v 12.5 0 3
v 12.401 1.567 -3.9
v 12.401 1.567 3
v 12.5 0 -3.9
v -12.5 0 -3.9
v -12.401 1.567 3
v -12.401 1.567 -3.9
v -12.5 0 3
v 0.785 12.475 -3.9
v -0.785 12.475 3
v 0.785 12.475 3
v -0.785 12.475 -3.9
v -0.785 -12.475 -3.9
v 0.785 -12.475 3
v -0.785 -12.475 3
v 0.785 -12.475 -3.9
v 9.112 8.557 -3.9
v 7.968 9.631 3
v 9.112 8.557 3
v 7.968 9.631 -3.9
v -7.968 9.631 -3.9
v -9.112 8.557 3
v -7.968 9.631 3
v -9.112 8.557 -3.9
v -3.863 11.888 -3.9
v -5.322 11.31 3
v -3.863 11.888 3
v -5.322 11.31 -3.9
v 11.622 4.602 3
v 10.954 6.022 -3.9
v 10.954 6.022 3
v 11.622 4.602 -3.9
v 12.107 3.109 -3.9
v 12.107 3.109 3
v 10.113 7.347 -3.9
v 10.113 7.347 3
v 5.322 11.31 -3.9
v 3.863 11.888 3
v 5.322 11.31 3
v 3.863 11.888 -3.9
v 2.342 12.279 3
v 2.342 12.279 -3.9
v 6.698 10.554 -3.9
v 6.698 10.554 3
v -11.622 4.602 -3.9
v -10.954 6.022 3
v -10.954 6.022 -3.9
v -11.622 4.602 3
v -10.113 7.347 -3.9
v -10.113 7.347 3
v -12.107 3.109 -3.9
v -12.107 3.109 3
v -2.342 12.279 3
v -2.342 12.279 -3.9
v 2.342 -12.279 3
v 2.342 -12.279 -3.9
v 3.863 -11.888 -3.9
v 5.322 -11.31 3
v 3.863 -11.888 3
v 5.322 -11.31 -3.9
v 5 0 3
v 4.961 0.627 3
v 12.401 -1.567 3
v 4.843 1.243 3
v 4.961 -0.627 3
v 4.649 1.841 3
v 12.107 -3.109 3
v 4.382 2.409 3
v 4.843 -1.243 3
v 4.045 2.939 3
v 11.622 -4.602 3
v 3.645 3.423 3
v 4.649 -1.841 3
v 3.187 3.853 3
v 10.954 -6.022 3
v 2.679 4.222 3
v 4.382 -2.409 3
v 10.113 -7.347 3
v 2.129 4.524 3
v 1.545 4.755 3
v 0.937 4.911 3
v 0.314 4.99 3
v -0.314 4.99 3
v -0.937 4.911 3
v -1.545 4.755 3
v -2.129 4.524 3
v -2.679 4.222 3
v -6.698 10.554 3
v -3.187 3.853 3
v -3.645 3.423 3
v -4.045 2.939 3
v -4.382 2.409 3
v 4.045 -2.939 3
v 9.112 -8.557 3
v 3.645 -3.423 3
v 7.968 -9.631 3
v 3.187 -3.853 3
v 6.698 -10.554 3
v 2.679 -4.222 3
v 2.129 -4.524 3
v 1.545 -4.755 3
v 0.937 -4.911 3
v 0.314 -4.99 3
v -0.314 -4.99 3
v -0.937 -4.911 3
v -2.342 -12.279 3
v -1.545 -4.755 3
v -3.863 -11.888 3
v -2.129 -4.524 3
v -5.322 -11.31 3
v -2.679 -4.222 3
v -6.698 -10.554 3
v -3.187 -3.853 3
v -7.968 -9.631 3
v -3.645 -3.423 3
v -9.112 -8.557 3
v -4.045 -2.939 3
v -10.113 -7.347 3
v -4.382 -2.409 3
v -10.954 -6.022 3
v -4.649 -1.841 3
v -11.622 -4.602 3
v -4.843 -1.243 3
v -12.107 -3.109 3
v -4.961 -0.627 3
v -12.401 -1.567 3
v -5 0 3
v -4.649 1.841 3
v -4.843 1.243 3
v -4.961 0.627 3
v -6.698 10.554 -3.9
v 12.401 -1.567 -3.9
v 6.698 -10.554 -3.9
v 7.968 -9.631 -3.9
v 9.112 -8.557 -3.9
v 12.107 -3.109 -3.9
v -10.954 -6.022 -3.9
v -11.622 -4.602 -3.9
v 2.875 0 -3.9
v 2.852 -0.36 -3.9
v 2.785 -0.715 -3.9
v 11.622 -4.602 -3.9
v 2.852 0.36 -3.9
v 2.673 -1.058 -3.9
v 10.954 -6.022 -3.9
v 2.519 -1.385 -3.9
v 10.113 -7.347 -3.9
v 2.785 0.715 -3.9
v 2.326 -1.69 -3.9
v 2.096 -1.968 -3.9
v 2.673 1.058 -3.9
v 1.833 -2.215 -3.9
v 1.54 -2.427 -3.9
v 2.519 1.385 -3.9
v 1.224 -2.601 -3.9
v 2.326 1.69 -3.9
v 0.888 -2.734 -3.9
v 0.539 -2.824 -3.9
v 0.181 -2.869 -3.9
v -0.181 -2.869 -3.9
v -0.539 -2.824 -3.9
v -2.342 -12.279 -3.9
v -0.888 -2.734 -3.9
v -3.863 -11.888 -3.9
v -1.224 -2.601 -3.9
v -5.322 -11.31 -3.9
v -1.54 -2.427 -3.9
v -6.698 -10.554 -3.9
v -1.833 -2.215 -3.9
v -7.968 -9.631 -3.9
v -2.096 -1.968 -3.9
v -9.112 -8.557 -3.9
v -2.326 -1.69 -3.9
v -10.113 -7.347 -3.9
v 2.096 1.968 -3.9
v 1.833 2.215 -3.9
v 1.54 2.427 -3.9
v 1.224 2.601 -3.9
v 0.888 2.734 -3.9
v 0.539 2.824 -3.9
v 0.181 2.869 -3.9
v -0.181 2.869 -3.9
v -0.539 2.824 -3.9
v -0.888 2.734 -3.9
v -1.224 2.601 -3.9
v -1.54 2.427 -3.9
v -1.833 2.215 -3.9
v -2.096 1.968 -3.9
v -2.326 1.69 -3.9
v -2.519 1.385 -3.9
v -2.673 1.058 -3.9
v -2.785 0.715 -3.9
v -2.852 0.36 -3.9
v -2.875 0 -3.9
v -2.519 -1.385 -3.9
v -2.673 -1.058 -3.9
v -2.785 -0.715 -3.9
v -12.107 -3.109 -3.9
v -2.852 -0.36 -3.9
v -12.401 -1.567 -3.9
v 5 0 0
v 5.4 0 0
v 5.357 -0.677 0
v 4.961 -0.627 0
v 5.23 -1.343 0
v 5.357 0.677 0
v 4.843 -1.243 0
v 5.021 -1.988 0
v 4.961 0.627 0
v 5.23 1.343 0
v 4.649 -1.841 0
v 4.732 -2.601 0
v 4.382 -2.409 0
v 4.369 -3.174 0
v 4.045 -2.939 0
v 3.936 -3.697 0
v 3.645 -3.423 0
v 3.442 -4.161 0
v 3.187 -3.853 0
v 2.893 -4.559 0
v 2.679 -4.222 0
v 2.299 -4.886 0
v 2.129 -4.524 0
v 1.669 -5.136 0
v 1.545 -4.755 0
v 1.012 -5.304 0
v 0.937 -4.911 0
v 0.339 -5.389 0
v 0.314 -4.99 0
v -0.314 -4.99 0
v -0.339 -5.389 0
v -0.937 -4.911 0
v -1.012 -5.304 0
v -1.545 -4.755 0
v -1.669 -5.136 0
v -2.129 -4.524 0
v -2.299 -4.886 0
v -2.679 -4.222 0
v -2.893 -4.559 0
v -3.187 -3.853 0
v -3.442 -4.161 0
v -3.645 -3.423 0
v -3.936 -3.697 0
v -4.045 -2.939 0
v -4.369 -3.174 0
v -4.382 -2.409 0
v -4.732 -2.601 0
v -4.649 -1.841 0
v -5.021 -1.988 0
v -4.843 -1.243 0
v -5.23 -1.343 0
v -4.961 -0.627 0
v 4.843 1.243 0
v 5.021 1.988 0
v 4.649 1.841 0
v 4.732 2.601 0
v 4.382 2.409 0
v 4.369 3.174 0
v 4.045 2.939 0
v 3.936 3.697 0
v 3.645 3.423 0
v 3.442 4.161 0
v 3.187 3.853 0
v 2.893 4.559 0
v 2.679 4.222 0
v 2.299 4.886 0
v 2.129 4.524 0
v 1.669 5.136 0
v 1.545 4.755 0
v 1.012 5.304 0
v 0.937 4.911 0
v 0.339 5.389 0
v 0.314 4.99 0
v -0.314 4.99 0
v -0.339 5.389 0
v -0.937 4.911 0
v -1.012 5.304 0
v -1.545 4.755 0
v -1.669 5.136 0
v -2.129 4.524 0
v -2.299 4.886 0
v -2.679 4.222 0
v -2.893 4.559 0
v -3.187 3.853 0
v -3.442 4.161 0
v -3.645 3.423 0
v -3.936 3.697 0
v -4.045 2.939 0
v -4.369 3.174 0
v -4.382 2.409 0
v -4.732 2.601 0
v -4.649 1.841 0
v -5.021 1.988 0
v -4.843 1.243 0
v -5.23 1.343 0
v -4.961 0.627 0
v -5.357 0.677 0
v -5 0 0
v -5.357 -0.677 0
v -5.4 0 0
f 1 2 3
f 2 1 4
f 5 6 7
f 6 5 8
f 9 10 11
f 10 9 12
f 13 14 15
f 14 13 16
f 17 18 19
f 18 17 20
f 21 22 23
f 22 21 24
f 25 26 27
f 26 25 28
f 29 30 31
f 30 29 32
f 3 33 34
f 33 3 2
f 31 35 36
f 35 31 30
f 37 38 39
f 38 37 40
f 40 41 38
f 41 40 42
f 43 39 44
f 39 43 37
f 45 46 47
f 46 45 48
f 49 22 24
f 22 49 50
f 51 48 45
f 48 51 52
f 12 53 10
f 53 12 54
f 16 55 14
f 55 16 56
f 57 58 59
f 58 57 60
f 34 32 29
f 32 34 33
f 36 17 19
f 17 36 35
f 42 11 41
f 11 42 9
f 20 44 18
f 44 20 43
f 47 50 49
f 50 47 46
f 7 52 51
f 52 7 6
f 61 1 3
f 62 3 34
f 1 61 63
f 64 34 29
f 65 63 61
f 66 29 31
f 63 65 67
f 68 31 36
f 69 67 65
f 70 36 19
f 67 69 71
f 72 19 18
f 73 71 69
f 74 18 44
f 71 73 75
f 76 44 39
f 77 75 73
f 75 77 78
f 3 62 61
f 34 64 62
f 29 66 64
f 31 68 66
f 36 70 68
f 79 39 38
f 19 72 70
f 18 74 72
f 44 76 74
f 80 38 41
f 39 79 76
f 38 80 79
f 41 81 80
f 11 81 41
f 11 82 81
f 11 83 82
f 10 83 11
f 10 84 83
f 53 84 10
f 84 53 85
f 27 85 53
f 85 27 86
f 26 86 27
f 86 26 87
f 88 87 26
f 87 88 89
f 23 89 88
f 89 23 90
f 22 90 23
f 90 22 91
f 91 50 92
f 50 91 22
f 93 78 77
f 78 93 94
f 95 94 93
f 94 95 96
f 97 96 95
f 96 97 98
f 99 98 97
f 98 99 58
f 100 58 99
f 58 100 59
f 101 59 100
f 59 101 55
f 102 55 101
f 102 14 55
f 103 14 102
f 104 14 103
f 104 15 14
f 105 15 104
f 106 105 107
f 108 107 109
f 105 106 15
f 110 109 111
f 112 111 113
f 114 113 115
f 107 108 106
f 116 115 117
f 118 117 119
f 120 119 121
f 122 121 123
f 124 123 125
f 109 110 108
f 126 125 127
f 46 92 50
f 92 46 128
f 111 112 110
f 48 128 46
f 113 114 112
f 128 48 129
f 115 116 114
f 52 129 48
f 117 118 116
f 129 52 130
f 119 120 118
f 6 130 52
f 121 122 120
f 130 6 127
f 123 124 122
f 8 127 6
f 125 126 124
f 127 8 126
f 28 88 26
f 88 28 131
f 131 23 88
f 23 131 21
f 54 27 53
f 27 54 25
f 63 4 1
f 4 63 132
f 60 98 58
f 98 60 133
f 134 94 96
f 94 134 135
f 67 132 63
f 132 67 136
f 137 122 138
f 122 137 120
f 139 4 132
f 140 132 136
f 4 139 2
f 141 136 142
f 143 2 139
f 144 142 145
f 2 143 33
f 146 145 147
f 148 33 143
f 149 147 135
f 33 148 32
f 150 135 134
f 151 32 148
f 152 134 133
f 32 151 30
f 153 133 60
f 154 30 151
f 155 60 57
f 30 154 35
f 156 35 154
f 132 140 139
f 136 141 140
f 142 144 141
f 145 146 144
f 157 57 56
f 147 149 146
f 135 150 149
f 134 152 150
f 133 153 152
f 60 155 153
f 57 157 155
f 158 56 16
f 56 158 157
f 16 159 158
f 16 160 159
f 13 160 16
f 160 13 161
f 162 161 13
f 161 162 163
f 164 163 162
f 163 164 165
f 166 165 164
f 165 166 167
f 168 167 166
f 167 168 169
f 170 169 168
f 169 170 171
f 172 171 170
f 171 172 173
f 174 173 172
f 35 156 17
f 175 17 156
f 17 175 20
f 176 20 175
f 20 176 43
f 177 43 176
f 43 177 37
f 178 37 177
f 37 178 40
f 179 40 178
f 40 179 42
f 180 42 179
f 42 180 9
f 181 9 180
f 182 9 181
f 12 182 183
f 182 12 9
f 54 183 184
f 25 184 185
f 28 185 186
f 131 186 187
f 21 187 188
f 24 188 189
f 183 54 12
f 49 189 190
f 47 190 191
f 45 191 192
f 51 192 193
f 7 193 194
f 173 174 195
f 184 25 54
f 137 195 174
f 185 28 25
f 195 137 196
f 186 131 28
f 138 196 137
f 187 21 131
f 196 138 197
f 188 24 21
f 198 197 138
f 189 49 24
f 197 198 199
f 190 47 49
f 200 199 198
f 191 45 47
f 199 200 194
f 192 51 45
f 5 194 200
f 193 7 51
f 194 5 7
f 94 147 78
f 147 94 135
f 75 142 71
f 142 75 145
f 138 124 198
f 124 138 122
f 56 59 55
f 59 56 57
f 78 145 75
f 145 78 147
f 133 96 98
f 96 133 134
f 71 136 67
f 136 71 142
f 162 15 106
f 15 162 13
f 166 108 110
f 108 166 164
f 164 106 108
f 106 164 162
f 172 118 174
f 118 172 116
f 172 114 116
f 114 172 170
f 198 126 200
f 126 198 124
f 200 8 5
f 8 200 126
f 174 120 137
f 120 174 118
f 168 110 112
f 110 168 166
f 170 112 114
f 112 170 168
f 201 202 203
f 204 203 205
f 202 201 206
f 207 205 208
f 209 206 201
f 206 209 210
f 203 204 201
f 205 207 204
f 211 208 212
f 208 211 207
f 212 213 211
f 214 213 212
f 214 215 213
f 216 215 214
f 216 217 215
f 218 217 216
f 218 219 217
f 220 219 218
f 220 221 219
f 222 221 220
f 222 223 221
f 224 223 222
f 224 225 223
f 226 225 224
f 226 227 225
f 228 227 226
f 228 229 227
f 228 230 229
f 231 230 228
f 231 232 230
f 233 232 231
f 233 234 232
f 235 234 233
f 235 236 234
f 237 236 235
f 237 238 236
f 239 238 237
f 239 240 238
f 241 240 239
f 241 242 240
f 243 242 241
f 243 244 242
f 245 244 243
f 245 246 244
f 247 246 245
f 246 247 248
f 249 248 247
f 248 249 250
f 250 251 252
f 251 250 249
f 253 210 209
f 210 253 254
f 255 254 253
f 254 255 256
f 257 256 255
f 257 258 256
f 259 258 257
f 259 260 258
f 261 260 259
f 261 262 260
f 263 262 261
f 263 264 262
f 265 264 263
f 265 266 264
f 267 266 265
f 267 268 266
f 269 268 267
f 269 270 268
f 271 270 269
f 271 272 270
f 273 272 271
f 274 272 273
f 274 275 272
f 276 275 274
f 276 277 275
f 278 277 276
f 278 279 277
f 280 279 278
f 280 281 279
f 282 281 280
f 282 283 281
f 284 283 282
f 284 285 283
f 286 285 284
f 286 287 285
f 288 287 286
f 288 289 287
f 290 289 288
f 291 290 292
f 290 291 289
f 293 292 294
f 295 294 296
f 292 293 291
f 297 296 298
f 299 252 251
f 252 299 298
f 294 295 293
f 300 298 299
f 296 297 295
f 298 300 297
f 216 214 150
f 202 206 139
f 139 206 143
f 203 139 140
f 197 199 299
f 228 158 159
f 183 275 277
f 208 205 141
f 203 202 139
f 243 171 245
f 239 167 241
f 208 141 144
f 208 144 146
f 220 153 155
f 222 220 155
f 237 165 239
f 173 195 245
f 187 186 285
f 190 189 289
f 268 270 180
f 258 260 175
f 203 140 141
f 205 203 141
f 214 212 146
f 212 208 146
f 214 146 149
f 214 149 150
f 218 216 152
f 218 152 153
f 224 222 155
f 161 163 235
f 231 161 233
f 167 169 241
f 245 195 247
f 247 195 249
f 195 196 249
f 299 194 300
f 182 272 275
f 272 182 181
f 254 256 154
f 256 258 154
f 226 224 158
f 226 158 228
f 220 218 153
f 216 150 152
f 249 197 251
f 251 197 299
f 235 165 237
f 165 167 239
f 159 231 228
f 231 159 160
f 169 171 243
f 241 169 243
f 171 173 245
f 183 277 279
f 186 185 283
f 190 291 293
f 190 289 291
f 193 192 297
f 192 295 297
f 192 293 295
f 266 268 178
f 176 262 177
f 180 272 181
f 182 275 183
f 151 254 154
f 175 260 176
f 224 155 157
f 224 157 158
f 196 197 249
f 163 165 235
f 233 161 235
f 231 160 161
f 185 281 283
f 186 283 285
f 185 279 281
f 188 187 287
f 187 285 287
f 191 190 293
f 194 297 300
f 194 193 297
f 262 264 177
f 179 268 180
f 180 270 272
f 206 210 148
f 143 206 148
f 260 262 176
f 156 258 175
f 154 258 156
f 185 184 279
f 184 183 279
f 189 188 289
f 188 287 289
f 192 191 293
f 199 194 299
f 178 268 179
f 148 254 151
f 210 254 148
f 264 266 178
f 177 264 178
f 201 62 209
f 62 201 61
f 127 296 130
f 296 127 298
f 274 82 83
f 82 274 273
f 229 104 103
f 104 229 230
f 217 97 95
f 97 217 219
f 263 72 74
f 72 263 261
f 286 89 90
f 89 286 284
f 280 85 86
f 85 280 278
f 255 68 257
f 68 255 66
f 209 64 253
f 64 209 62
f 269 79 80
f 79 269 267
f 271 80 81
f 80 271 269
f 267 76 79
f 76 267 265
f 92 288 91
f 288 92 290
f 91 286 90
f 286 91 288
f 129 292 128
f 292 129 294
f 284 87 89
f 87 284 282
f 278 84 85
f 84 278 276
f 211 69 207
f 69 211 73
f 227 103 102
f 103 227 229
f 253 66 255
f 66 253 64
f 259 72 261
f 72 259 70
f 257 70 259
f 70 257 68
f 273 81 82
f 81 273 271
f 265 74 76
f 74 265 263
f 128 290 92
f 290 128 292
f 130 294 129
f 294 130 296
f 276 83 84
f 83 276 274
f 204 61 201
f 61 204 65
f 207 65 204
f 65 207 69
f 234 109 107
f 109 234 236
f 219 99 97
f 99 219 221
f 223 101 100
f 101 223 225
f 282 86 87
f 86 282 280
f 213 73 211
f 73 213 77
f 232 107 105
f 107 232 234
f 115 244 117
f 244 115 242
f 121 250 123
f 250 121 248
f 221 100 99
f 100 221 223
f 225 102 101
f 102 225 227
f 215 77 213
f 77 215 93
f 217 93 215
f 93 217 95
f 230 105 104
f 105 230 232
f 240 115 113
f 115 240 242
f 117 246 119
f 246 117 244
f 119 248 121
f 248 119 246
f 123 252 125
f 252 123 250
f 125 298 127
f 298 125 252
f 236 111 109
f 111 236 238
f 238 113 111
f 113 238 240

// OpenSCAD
$fn = 50;


difference() {
	union() {
		translate(v = [0, 0, -3.9000000000]) {
			cylinder(h = 6.9000000000, r = 12.5000000000);
		}
		#translate(v = [0, 0, -6.9000000000]) {
			cylinder(h = 6.9000000000, r = 2.8750000000);
		}
	}
	union() {
		translate(v = [0, 0, 0]) {
			rotate(a = [0, 0, 0]) {
				difference() {
					union() {
						translate(v = [0, 0, -6.9000000000]) {
							cylinder(h = 6.9000000000, r = 2.6000000000);
						}
						translate(v = [0, 0, -3.9000000000]) {
							cylinder(h = 3.9000000000, r1 = 2.8750000000, r2 = 5.4000000000);
						}
						translate(v = [0, 0, -6.9000000000]) {
							cylinder(h = 6.9000000000, r = 2.8750000000);
						}
						translate(v = [0, 0, -6.9000000000]) {
							cylinder(h = 6.9000000000, r = 2.6000000000);
						}
					}
					union();
				}
			}
		}
		#cylinder(h = 3, r = 5.0000000000);
	}
}
